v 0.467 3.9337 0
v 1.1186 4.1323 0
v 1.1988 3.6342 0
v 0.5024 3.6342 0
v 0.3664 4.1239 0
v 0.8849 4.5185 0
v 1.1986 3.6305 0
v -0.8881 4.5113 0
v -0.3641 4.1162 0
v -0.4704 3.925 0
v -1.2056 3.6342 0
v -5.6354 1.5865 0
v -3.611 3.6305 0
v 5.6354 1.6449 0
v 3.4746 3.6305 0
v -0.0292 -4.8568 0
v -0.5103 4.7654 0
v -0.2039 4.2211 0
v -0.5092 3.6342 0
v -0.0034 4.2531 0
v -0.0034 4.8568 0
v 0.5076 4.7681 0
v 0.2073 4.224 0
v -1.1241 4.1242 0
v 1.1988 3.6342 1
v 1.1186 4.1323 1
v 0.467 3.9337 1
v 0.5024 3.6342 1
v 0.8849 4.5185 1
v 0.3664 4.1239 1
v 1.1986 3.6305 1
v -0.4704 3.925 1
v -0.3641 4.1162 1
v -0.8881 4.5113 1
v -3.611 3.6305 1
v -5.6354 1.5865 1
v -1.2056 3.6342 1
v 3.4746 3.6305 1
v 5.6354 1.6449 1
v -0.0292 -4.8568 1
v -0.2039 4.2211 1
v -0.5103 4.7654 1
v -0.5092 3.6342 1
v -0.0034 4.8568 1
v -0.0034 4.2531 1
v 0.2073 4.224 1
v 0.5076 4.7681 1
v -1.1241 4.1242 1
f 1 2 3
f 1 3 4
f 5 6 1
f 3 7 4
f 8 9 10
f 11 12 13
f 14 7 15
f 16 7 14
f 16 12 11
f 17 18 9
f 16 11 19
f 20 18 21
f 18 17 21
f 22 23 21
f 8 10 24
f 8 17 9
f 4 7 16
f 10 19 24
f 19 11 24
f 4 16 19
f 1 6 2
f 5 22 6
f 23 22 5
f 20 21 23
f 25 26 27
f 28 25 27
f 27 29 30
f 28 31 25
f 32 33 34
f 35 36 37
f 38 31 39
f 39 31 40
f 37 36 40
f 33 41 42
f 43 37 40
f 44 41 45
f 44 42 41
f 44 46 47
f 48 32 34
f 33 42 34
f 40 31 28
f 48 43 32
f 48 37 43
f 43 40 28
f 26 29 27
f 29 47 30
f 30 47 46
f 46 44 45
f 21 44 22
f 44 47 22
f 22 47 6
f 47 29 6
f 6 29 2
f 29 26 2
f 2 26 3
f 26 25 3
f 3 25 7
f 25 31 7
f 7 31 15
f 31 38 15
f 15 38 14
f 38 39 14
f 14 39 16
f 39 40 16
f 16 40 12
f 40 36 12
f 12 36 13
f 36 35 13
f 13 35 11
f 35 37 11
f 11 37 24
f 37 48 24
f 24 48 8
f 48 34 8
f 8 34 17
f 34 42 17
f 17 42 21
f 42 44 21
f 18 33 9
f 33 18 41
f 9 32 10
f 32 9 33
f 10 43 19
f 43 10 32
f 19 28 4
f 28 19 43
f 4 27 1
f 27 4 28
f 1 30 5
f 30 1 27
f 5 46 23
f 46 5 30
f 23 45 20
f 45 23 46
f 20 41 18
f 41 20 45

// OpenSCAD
// Module names are of the form poly_<inkscape-path-id>().
// As a result you can associate a polygon in this OpenSCAD program with the
//  corresponding SVG element in the Inkscape document by looking for 
//  the XML element with the attribute id="inkscape-path-id".

// Paths have their own variables so they can be imported and used 
//  in polygon(points) structures in other programs.
// The NN_points is the list of all polygon XY vertices. 
// There may be an NN_paths variable as well. If it exists then it 
//  defines the nested paths. Both must be used in the 
//  polygon(points, paths) variant of the command.

profile_scale = 25.4/90; //made in inkscape in mm

// helper functions to determine the X,Y dimensions of the profiles
function min_x(shape_points) = min([ for (x = shape_points) min(x[0])]);
function max_x(shape_points) = max([ for (x = shape_points) max(x[0])]);
function min_y(shape_points) = min([ for (x = shape_points) min(x[1])]);
function max_y(shape_points) = max([ for (x = shape_points) max(x[1])]);

height = 1;
width = 1.0;


path36933_0_points = [[-0.012145,-17.209052],[-1.807987,-16.885351],[-3.146660,-15.984841],[-3.982998,-14.613411],[-4.271835,-12.876952],[-12.794827,-12.864052],[-19.968037,-5.621602],[-0.103605,17.209052],[19.968037,-5.828312],[12.311657,-12.864052],[4.247037,-12.864052],[4.247557,-12.876952],[3.963670,-14.642169],[3.135550,-16.010382],[1.798508,-16.894890],[-0.012145,-17.208992],[-0.012145,-17.209052],[-0.012145,-15.070162],[0.734455,-14.967005],[1.298244,-14.612407],[1.654873,-13.938384],[1.779995,-12.876952],[-1.804285,-12.876952],[-1.666947,-13.907399],[-1.290205,-14.584897],[-0.722468,-14.956725],[-0.012145,-15.070162],[-0.012145,-15.070162]];
path36933_0_paths = [[0,1,2,3,4,5,6,7,8,9,10,11,12,13,14,15,16],
				[17,18,19,20,21,22,23,24,25,26,27]];

module poly_path36933(h, w, res=4)  {
  scale([profile_scale, -profile_scale, 1])
  union()  {
    linear_extrude(height=h)
      polygon(path36933_0_points, path36933_0_paths);
  }
}

// The shapes
poly_path36933(height, width);
